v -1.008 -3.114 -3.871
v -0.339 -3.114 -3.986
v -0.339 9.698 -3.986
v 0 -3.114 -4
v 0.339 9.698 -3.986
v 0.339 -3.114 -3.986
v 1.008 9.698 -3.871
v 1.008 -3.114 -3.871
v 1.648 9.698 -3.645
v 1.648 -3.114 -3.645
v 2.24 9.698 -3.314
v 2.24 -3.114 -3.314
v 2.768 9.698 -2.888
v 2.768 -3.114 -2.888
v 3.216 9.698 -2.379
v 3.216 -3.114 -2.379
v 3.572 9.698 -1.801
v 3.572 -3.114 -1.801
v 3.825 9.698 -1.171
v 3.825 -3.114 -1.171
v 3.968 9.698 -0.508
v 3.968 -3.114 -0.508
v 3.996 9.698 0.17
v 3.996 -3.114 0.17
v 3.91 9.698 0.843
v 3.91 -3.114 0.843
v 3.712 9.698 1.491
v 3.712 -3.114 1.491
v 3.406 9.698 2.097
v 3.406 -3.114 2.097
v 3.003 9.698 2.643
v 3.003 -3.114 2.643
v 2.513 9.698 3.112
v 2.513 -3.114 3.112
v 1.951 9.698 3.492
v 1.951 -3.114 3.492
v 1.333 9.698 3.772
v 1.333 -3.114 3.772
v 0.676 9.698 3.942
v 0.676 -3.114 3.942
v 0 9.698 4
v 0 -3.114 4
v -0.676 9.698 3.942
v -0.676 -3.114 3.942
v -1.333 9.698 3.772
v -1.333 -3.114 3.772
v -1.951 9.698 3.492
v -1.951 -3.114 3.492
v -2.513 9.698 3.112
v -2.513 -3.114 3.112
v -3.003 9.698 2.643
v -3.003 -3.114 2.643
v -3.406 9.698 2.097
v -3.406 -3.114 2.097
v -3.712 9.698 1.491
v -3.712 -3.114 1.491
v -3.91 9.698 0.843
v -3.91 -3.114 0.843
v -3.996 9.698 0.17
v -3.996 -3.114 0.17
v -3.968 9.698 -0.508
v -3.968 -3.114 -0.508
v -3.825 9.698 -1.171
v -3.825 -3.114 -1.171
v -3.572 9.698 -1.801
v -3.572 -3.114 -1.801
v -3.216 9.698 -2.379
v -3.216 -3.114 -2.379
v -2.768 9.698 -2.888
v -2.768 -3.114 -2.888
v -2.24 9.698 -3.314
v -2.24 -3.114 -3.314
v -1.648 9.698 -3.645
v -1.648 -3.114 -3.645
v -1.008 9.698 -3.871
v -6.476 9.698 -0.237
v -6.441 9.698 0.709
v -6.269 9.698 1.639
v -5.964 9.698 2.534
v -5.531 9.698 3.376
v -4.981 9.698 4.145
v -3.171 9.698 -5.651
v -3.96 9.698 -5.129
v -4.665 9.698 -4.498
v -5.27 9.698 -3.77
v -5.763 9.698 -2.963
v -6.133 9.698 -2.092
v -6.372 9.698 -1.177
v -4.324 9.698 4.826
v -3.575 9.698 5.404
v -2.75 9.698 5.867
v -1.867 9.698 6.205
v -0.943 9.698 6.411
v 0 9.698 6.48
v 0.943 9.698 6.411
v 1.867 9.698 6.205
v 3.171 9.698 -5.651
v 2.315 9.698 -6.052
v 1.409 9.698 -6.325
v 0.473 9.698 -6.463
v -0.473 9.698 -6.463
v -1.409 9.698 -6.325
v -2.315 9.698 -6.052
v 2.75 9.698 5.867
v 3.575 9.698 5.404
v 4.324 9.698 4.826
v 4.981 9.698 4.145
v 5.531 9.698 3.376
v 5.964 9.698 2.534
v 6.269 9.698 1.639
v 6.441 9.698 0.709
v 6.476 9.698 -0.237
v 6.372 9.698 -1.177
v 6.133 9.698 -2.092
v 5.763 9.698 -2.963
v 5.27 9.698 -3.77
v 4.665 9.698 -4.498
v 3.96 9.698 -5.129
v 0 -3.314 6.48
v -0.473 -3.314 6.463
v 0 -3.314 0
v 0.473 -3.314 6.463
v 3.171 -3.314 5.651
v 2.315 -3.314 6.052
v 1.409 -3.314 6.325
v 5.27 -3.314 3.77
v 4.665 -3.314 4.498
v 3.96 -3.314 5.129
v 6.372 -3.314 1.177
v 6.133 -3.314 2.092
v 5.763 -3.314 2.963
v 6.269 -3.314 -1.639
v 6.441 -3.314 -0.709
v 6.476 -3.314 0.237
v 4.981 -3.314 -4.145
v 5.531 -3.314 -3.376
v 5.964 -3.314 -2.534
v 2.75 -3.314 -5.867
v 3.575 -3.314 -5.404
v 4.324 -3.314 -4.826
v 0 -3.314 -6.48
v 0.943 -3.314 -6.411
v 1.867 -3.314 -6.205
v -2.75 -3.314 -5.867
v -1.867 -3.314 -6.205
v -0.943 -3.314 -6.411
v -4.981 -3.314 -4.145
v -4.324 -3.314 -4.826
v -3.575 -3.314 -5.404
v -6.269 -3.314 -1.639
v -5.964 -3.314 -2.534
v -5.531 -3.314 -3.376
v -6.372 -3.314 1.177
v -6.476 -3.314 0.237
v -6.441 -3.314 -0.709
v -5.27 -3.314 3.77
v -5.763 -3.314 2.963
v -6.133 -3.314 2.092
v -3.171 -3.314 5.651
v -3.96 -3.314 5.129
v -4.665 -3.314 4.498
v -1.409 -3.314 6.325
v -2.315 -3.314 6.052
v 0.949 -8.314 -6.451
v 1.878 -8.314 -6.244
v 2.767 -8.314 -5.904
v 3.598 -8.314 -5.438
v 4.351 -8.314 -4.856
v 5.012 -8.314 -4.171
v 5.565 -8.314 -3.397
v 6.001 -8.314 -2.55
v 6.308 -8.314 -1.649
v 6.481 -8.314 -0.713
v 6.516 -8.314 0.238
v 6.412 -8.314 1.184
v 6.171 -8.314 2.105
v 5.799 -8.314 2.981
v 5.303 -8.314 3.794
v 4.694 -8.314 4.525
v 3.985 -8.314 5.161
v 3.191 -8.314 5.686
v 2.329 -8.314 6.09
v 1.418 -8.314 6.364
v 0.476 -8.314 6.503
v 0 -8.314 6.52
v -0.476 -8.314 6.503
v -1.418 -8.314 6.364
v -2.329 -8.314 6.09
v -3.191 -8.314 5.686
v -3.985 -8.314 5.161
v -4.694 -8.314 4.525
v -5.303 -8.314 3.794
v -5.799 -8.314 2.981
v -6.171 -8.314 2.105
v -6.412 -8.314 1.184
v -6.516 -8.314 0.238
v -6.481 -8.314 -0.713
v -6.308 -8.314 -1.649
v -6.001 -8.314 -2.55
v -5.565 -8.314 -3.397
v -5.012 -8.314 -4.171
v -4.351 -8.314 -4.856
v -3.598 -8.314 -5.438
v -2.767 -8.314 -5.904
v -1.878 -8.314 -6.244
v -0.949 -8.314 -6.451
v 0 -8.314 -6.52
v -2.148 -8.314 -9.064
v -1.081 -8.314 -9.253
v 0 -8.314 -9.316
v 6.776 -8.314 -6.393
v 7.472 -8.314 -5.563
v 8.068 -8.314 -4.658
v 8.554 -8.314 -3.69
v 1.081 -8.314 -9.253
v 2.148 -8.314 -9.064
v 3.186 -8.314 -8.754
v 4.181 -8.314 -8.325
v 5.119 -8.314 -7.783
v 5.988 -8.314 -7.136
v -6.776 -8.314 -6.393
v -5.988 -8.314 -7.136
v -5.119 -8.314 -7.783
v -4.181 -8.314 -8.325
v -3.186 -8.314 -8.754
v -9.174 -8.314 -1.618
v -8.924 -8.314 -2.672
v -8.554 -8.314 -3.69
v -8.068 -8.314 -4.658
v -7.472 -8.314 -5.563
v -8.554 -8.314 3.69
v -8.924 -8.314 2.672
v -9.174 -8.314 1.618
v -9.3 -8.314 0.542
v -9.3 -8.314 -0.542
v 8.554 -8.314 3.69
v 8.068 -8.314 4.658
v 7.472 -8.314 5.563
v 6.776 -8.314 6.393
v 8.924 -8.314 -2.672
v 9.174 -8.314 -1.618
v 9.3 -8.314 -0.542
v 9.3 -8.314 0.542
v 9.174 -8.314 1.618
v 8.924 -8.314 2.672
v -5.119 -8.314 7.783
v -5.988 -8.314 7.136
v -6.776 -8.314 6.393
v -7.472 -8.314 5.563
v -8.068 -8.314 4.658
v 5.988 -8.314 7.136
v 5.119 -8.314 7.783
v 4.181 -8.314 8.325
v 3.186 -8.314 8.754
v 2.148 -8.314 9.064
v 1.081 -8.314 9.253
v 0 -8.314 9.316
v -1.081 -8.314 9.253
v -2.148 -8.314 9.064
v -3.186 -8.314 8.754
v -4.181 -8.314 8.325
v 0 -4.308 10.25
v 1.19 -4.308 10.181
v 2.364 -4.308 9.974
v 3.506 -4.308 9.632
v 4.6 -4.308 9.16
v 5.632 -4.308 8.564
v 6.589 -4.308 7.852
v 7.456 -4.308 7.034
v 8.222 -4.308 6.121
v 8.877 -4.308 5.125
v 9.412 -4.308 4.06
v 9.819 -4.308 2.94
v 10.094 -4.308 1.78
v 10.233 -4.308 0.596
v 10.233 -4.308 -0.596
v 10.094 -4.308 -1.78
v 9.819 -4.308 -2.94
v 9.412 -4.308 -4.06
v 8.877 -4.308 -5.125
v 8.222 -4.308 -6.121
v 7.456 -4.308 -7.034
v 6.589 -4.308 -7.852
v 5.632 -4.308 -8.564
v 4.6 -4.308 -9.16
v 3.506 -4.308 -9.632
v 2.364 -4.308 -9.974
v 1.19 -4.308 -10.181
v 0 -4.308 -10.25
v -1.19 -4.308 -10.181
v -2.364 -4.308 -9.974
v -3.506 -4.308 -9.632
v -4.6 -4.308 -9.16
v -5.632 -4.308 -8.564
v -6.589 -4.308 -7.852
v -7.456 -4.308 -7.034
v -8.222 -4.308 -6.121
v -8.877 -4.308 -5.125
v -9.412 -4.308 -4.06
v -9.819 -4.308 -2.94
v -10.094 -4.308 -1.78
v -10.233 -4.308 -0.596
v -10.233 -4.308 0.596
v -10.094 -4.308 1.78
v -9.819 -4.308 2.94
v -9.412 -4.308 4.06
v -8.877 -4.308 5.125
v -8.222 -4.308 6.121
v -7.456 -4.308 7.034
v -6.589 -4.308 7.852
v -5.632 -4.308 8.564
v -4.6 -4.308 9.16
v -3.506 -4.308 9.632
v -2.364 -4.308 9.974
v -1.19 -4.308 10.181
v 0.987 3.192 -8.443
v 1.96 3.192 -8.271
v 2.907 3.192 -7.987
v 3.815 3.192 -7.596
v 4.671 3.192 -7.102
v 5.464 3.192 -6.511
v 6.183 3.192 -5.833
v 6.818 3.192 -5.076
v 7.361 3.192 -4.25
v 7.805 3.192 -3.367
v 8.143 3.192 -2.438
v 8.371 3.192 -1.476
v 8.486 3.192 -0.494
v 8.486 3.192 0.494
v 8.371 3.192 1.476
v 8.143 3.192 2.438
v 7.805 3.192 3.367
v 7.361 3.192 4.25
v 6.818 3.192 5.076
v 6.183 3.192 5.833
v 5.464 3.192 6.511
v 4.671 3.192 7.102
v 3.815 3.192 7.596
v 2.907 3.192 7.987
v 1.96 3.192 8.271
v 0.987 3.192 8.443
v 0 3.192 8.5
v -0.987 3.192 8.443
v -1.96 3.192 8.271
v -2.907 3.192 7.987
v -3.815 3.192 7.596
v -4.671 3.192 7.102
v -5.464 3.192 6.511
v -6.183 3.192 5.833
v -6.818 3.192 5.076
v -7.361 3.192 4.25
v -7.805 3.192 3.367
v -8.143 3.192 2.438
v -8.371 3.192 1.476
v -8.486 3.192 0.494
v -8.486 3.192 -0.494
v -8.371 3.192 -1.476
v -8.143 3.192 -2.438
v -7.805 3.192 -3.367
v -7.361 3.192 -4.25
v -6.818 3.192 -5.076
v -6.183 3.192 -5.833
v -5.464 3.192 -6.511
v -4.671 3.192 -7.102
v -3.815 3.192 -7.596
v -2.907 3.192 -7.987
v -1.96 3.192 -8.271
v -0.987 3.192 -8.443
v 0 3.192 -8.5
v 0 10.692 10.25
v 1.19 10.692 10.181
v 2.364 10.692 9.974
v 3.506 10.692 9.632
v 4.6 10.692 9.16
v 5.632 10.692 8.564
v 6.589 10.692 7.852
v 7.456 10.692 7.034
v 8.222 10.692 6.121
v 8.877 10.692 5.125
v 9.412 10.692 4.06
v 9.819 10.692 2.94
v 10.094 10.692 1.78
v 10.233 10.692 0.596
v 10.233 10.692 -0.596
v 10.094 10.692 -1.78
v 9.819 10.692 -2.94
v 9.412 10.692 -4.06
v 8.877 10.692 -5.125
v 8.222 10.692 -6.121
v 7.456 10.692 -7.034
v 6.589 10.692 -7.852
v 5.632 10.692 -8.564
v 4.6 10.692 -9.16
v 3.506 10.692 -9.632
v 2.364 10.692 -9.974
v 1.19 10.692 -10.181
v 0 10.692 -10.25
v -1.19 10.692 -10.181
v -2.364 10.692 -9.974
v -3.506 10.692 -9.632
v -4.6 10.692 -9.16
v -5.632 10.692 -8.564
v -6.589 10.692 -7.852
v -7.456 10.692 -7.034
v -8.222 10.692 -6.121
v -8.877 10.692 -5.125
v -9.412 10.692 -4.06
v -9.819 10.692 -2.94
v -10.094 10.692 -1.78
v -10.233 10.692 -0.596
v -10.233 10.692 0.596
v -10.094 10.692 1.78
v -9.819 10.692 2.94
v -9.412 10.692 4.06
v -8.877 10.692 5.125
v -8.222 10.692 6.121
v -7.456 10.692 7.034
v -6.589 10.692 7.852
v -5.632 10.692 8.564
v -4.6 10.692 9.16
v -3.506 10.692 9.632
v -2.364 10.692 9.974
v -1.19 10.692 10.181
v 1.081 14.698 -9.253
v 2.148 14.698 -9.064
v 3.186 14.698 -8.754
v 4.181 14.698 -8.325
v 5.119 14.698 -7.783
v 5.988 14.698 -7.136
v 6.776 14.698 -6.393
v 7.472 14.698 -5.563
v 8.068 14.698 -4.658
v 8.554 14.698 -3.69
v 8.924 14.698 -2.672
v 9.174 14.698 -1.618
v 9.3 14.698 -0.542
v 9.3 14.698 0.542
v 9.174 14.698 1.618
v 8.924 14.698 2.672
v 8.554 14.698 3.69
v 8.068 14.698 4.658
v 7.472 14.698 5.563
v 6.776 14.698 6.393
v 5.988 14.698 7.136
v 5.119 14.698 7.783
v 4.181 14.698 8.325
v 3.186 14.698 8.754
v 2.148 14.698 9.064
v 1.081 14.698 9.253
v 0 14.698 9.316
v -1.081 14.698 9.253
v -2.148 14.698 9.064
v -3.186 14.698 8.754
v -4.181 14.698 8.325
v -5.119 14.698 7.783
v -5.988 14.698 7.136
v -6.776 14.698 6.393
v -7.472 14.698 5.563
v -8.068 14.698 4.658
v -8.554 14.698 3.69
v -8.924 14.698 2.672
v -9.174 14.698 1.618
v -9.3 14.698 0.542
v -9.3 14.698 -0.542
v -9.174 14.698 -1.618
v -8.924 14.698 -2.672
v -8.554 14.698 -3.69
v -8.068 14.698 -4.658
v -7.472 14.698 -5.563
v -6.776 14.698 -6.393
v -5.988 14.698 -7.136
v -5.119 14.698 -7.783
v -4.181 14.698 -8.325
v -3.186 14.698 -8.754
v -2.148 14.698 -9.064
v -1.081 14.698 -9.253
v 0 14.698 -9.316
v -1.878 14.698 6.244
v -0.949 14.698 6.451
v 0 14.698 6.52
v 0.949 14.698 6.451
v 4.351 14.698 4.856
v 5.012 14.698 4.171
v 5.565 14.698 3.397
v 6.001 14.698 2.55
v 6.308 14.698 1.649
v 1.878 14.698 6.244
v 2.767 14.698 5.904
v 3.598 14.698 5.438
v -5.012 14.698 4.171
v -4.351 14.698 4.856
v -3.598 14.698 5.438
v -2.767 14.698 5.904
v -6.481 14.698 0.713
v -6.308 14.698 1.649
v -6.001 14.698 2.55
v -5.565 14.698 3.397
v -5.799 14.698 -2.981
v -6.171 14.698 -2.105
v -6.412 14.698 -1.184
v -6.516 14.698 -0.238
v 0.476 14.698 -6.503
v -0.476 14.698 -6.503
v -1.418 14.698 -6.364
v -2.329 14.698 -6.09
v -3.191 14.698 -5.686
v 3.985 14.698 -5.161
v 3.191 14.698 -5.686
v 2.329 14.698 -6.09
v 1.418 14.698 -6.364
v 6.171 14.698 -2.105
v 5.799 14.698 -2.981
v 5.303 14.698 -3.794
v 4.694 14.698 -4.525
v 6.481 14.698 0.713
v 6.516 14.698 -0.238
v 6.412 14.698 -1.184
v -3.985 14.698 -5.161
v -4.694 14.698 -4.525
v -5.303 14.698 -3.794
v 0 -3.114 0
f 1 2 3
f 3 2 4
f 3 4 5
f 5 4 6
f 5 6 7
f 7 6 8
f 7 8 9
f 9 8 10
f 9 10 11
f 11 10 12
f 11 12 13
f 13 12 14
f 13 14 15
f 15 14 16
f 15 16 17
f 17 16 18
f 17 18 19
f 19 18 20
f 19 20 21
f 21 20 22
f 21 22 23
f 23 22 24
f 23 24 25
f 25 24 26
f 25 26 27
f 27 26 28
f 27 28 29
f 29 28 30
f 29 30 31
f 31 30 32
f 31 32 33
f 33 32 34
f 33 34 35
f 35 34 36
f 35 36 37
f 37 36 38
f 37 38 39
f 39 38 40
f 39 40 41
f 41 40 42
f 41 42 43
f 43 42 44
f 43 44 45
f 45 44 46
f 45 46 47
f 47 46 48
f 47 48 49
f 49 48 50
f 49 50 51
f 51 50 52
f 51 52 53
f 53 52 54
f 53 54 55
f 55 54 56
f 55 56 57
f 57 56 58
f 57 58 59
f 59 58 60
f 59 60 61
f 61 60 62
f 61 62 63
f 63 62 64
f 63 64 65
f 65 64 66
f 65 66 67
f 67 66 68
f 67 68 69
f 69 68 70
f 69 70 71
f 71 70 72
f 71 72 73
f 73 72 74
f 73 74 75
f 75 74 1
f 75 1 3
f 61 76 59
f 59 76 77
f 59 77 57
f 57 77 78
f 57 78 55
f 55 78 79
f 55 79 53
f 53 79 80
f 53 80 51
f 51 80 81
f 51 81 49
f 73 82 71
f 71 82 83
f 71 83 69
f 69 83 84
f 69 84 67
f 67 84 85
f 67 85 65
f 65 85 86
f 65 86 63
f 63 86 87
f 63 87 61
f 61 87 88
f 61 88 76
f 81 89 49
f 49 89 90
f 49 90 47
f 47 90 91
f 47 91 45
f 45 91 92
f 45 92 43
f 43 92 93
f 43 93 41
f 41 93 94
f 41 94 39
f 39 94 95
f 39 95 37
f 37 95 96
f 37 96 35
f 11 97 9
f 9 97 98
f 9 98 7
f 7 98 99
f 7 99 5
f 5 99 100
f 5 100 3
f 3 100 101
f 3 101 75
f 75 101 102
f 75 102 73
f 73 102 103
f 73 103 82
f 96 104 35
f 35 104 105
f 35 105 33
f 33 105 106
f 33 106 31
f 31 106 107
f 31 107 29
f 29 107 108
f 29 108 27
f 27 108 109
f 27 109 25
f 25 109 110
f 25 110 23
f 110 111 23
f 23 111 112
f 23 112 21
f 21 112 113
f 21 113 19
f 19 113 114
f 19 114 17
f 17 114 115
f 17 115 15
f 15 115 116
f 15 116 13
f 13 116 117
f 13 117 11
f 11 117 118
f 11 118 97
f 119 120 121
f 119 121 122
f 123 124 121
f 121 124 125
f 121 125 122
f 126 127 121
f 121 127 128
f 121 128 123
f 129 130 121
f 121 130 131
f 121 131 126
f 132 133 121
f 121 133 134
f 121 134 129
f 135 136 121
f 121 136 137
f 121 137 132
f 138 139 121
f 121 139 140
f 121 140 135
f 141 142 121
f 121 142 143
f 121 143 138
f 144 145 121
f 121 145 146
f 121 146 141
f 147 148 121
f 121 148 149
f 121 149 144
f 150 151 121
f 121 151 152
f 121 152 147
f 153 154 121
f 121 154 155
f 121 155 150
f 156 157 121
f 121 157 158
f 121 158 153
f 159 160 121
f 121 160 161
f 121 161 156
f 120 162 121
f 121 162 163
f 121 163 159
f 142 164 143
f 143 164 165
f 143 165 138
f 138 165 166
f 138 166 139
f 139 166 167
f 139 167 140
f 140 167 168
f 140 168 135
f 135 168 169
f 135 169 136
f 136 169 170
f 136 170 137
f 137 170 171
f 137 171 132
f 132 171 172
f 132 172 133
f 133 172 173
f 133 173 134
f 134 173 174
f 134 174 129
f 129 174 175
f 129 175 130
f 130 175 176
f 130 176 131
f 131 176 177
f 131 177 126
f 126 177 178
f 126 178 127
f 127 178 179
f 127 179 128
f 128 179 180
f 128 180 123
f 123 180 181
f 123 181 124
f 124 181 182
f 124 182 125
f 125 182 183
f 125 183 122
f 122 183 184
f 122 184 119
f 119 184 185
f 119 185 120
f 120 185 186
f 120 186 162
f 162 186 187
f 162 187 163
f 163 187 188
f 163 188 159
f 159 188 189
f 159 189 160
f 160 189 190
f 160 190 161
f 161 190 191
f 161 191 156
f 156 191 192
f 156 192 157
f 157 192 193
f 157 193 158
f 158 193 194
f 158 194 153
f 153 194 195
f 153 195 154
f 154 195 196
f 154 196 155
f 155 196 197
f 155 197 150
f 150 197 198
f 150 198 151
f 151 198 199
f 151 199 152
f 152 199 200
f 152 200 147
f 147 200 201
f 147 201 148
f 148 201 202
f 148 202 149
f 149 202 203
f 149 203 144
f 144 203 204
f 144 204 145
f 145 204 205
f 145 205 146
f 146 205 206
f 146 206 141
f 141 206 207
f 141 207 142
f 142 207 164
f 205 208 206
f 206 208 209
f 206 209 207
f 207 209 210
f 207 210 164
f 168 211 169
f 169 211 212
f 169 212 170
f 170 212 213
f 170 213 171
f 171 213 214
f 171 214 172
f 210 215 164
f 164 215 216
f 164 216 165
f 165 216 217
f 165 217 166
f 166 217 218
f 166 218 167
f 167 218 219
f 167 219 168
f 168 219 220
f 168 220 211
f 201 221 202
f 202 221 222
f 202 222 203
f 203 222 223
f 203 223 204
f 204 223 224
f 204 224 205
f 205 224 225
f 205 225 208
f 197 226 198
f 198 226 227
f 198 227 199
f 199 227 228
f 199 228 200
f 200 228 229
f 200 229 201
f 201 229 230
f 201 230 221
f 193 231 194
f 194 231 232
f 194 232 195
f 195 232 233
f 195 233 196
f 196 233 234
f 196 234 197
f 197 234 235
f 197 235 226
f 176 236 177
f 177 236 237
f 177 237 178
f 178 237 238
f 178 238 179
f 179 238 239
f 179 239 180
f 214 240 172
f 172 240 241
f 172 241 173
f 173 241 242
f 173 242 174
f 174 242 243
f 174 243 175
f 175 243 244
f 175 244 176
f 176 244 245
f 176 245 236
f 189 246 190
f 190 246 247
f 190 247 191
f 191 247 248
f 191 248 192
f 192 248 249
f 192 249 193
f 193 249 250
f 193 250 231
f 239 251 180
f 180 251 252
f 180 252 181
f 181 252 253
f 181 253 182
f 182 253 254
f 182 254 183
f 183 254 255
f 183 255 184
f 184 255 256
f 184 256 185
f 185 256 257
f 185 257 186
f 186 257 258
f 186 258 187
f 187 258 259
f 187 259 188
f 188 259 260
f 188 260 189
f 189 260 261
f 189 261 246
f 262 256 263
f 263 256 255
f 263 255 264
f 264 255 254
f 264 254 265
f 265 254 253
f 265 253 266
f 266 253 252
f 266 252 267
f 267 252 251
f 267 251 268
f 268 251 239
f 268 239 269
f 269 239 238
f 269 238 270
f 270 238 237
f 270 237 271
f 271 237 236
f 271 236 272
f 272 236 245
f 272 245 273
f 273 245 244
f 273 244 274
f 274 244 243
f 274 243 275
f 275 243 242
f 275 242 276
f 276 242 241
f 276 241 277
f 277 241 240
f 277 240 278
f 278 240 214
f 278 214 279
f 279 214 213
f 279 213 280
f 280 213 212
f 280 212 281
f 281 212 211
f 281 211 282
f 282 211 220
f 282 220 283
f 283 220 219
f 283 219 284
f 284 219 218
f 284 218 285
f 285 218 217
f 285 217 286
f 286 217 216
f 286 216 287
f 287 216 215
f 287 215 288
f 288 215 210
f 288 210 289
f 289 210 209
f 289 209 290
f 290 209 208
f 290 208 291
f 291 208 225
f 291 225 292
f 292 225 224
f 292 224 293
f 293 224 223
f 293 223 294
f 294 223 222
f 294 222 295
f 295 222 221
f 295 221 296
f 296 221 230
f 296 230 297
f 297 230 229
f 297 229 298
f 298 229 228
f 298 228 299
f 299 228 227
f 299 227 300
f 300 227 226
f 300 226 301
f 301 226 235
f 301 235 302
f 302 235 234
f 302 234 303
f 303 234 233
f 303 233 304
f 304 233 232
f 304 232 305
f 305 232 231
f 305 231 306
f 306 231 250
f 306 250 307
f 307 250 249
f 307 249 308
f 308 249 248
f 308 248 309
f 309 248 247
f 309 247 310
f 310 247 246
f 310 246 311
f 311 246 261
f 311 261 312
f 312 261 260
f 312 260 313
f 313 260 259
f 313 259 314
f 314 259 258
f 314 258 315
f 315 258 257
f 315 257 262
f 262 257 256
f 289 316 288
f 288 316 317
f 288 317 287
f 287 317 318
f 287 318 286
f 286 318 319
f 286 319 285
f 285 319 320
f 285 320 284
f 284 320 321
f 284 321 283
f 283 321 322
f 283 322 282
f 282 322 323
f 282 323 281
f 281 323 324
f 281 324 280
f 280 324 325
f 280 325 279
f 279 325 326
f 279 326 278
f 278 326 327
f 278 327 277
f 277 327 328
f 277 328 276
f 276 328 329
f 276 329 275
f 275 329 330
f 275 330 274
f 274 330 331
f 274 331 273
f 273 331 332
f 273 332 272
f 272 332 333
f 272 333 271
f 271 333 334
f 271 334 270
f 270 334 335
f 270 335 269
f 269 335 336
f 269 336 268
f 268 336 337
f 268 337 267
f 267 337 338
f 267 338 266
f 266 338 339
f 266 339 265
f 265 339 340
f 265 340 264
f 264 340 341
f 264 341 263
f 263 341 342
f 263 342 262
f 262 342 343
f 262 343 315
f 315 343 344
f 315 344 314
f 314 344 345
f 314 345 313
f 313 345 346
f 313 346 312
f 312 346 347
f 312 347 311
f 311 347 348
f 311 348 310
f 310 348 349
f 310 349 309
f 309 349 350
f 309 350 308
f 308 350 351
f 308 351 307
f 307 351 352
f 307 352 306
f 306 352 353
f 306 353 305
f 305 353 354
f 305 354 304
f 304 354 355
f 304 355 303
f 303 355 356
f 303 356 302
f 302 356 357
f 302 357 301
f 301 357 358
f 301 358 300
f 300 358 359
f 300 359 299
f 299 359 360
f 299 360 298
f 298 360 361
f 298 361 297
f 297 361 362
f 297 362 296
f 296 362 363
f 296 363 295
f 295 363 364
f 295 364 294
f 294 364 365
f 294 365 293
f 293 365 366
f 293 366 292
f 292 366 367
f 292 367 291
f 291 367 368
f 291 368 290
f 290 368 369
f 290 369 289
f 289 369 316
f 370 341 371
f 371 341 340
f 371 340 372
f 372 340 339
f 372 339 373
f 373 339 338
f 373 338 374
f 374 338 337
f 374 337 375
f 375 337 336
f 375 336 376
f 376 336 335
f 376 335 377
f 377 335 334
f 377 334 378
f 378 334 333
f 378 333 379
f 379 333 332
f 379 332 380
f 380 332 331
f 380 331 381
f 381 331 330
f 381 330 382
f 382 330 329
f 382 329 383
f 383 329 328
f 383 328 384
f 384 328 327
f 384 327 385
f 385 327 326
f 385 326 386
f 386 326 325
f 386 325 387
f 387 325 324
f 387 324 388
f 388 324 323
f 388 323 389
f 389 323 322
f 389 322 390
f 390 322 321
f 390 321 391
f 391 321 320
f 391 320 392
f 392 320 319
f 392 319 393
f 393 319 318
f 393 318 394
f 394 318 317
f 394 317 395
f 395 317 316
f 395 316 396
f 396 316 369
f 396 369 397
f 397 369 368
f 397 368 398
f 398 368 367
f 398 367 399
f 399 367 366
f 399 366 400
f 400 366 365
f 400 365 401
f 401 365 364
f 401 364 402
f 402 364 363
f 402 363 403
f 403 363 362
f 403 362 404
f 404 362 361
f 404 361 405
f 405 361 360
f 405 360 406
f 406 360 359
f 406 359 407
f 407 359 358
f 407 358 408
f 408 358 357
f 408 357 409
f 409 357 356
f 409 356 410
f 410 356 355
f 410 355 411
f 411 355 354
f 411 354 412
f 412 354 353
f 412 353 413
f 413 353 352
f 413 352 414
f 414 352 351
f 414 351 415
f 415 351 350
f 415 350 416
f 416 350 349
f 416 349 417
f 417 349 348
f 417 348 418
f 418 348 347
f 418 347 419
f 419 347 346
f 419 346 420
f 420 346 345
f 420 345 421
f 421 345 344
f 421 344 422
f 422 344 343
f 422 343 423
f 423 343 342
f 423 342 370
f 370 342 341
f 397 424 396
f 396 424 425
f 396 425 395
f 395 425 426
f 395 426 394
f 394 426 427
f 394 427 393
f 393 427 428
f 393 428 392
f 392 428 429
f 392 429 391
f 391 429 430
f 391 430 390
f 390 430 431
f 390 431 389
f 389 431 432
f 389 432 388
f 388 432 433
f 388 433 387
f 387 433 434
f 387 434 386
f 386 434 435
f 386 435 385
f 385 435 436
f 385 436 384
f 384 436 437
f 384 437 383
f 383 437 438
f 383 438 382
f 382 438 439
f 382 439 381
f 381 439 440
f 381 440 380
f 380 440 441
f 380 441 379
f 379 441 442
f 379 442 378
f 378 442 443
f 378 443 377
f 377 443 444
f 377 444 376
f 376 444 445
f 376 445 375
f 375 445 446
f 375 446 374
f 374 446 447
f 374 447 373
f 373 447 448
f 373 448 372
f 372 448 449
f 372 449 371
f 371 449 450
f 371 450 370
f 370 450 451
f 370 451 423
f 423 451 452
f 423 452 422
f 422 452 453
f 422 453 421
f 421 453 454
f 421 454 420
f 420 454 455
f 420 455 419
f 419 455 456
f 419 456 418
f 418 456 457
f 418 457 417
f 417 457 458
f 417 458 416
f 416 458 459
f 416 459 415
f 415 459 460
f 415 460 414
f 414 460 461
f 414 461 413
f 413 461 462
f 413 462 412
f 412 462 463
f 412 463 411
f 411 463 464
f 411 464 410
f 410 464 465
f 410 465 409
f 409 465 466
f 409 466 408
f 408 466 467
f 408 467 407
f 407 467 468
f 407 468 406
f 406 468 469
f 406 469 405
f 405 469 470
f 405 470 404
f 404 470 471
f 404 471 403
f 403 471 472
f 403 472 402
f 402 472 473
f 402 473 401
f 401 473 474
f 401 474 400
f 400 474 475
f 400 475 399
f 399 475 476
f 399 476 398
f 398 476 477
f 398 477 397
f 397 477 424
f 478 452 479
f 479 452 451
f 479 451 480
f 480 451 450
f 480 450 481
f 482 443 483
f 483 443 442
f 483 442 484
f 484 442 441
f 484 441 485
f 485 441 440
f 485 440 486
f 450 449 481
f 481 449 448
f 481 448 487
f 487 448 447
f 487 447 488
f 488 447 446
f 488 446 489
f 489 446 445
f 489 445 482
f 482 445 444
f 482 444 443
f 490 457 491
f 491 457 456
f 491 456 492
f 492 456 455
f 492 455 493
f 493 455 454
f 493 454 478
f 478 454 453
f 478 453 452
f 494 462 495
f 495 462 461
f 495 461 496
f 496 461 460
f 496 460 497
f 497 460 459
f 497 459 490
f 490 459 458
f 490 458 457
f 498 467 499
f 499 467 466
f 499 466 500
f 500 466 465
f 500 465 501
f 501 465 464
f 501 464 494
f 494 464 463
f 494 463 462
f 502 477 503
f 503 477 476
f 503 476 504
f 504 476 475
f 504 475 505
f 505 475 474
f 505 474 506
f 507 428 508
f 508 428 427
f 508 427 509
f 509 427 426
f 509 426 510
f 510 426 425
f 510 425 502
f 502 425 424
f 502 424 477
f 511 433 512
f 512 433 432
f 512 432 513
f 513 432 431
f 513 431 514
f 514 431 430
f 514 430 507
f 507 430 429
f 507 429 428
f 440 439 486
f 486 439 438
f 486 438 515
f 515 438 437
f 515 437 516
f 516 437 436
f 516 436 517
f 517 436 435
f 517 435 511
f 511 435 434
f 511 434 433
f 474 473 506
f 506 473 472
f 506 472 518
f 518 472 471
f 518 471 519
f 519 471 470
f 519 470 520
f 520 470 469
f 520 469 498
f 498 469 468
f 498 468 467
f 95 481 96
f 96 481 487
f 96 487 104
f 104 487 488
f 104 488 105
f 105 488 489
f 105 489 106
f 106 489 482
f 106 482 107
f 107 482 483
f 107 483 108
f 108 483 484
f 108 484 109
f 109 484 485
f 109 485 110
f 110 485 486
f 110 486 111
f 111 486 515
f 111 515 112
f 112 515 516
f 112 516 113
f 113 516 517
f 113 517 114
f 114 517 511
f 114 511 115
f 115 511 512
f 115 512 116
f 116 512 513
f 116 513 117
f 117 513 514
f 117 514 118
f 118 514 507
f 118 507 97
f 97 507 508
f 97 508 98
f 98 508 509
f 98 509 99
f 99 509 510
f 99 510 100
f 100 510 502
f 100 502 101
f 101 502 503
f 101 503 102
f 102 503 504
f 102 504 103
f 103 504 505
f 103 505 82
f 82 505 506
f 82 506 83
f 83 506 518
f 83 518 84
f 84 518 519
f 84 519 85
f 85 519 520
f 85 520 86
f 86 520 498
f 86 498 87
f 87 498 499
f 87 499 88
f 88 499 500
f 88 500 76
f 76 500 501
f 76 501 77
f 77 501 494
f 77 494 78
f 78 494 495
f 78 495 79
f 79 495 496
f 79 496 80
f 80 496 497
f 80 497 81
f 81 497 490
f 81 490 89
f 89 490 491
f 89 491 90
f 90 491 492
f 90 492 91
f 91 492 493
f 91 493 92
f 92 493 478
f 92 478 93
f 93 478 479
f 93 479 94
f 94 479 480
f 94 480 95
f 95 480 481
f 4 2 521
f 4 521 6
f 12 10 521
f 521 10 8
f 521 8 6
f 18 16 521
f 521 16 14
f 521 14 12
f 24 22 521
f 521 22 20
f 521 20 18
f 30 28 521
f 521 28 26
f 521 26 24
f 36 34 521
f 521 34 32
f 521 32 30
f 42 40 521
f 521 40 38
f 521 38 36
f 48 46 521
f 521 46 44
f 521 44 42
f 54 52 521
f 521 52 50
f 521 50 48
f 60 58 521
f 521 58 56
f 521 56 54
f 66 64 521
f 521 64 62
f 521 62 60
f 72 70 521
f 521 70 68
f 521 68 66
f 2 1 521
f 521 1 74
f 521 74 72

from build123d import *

# Parameters (mm, degrees)
SKETCH2_R           = 4
BOSS_EXTRUDE1_DEPTH = 0.2


with BuildPart() as part:
    # Sketch1 → Revolve1 (revolve)
    with BuildSketch(Plane.XY):
        Polygon((4, -3.313539221), (4, 9.698172784), (6.48, 9.698172784), (6.52, 14.698172784), (9.315596793, 14.698172784), (10.25, 10.692316782), (8.5, 3.192316782), (10.25, -4.307683218), (9.315596793, -8.313539221), (6.52, -8.313539221), (6.48, -3.313539221), align=None)
    revolve(axis=Axis((0, 42.323455848, 0), (0, -1, 0)))

    # Sketch2 → Boss-Extrude1 (add)
    with BuildSketch(Plane.XZ.offset(3.313539221)):
        Circle(SKETCH2_R)
    extrude(amount=-BOSS_EXTRUDE1_DEPTH)


solid = part.part
